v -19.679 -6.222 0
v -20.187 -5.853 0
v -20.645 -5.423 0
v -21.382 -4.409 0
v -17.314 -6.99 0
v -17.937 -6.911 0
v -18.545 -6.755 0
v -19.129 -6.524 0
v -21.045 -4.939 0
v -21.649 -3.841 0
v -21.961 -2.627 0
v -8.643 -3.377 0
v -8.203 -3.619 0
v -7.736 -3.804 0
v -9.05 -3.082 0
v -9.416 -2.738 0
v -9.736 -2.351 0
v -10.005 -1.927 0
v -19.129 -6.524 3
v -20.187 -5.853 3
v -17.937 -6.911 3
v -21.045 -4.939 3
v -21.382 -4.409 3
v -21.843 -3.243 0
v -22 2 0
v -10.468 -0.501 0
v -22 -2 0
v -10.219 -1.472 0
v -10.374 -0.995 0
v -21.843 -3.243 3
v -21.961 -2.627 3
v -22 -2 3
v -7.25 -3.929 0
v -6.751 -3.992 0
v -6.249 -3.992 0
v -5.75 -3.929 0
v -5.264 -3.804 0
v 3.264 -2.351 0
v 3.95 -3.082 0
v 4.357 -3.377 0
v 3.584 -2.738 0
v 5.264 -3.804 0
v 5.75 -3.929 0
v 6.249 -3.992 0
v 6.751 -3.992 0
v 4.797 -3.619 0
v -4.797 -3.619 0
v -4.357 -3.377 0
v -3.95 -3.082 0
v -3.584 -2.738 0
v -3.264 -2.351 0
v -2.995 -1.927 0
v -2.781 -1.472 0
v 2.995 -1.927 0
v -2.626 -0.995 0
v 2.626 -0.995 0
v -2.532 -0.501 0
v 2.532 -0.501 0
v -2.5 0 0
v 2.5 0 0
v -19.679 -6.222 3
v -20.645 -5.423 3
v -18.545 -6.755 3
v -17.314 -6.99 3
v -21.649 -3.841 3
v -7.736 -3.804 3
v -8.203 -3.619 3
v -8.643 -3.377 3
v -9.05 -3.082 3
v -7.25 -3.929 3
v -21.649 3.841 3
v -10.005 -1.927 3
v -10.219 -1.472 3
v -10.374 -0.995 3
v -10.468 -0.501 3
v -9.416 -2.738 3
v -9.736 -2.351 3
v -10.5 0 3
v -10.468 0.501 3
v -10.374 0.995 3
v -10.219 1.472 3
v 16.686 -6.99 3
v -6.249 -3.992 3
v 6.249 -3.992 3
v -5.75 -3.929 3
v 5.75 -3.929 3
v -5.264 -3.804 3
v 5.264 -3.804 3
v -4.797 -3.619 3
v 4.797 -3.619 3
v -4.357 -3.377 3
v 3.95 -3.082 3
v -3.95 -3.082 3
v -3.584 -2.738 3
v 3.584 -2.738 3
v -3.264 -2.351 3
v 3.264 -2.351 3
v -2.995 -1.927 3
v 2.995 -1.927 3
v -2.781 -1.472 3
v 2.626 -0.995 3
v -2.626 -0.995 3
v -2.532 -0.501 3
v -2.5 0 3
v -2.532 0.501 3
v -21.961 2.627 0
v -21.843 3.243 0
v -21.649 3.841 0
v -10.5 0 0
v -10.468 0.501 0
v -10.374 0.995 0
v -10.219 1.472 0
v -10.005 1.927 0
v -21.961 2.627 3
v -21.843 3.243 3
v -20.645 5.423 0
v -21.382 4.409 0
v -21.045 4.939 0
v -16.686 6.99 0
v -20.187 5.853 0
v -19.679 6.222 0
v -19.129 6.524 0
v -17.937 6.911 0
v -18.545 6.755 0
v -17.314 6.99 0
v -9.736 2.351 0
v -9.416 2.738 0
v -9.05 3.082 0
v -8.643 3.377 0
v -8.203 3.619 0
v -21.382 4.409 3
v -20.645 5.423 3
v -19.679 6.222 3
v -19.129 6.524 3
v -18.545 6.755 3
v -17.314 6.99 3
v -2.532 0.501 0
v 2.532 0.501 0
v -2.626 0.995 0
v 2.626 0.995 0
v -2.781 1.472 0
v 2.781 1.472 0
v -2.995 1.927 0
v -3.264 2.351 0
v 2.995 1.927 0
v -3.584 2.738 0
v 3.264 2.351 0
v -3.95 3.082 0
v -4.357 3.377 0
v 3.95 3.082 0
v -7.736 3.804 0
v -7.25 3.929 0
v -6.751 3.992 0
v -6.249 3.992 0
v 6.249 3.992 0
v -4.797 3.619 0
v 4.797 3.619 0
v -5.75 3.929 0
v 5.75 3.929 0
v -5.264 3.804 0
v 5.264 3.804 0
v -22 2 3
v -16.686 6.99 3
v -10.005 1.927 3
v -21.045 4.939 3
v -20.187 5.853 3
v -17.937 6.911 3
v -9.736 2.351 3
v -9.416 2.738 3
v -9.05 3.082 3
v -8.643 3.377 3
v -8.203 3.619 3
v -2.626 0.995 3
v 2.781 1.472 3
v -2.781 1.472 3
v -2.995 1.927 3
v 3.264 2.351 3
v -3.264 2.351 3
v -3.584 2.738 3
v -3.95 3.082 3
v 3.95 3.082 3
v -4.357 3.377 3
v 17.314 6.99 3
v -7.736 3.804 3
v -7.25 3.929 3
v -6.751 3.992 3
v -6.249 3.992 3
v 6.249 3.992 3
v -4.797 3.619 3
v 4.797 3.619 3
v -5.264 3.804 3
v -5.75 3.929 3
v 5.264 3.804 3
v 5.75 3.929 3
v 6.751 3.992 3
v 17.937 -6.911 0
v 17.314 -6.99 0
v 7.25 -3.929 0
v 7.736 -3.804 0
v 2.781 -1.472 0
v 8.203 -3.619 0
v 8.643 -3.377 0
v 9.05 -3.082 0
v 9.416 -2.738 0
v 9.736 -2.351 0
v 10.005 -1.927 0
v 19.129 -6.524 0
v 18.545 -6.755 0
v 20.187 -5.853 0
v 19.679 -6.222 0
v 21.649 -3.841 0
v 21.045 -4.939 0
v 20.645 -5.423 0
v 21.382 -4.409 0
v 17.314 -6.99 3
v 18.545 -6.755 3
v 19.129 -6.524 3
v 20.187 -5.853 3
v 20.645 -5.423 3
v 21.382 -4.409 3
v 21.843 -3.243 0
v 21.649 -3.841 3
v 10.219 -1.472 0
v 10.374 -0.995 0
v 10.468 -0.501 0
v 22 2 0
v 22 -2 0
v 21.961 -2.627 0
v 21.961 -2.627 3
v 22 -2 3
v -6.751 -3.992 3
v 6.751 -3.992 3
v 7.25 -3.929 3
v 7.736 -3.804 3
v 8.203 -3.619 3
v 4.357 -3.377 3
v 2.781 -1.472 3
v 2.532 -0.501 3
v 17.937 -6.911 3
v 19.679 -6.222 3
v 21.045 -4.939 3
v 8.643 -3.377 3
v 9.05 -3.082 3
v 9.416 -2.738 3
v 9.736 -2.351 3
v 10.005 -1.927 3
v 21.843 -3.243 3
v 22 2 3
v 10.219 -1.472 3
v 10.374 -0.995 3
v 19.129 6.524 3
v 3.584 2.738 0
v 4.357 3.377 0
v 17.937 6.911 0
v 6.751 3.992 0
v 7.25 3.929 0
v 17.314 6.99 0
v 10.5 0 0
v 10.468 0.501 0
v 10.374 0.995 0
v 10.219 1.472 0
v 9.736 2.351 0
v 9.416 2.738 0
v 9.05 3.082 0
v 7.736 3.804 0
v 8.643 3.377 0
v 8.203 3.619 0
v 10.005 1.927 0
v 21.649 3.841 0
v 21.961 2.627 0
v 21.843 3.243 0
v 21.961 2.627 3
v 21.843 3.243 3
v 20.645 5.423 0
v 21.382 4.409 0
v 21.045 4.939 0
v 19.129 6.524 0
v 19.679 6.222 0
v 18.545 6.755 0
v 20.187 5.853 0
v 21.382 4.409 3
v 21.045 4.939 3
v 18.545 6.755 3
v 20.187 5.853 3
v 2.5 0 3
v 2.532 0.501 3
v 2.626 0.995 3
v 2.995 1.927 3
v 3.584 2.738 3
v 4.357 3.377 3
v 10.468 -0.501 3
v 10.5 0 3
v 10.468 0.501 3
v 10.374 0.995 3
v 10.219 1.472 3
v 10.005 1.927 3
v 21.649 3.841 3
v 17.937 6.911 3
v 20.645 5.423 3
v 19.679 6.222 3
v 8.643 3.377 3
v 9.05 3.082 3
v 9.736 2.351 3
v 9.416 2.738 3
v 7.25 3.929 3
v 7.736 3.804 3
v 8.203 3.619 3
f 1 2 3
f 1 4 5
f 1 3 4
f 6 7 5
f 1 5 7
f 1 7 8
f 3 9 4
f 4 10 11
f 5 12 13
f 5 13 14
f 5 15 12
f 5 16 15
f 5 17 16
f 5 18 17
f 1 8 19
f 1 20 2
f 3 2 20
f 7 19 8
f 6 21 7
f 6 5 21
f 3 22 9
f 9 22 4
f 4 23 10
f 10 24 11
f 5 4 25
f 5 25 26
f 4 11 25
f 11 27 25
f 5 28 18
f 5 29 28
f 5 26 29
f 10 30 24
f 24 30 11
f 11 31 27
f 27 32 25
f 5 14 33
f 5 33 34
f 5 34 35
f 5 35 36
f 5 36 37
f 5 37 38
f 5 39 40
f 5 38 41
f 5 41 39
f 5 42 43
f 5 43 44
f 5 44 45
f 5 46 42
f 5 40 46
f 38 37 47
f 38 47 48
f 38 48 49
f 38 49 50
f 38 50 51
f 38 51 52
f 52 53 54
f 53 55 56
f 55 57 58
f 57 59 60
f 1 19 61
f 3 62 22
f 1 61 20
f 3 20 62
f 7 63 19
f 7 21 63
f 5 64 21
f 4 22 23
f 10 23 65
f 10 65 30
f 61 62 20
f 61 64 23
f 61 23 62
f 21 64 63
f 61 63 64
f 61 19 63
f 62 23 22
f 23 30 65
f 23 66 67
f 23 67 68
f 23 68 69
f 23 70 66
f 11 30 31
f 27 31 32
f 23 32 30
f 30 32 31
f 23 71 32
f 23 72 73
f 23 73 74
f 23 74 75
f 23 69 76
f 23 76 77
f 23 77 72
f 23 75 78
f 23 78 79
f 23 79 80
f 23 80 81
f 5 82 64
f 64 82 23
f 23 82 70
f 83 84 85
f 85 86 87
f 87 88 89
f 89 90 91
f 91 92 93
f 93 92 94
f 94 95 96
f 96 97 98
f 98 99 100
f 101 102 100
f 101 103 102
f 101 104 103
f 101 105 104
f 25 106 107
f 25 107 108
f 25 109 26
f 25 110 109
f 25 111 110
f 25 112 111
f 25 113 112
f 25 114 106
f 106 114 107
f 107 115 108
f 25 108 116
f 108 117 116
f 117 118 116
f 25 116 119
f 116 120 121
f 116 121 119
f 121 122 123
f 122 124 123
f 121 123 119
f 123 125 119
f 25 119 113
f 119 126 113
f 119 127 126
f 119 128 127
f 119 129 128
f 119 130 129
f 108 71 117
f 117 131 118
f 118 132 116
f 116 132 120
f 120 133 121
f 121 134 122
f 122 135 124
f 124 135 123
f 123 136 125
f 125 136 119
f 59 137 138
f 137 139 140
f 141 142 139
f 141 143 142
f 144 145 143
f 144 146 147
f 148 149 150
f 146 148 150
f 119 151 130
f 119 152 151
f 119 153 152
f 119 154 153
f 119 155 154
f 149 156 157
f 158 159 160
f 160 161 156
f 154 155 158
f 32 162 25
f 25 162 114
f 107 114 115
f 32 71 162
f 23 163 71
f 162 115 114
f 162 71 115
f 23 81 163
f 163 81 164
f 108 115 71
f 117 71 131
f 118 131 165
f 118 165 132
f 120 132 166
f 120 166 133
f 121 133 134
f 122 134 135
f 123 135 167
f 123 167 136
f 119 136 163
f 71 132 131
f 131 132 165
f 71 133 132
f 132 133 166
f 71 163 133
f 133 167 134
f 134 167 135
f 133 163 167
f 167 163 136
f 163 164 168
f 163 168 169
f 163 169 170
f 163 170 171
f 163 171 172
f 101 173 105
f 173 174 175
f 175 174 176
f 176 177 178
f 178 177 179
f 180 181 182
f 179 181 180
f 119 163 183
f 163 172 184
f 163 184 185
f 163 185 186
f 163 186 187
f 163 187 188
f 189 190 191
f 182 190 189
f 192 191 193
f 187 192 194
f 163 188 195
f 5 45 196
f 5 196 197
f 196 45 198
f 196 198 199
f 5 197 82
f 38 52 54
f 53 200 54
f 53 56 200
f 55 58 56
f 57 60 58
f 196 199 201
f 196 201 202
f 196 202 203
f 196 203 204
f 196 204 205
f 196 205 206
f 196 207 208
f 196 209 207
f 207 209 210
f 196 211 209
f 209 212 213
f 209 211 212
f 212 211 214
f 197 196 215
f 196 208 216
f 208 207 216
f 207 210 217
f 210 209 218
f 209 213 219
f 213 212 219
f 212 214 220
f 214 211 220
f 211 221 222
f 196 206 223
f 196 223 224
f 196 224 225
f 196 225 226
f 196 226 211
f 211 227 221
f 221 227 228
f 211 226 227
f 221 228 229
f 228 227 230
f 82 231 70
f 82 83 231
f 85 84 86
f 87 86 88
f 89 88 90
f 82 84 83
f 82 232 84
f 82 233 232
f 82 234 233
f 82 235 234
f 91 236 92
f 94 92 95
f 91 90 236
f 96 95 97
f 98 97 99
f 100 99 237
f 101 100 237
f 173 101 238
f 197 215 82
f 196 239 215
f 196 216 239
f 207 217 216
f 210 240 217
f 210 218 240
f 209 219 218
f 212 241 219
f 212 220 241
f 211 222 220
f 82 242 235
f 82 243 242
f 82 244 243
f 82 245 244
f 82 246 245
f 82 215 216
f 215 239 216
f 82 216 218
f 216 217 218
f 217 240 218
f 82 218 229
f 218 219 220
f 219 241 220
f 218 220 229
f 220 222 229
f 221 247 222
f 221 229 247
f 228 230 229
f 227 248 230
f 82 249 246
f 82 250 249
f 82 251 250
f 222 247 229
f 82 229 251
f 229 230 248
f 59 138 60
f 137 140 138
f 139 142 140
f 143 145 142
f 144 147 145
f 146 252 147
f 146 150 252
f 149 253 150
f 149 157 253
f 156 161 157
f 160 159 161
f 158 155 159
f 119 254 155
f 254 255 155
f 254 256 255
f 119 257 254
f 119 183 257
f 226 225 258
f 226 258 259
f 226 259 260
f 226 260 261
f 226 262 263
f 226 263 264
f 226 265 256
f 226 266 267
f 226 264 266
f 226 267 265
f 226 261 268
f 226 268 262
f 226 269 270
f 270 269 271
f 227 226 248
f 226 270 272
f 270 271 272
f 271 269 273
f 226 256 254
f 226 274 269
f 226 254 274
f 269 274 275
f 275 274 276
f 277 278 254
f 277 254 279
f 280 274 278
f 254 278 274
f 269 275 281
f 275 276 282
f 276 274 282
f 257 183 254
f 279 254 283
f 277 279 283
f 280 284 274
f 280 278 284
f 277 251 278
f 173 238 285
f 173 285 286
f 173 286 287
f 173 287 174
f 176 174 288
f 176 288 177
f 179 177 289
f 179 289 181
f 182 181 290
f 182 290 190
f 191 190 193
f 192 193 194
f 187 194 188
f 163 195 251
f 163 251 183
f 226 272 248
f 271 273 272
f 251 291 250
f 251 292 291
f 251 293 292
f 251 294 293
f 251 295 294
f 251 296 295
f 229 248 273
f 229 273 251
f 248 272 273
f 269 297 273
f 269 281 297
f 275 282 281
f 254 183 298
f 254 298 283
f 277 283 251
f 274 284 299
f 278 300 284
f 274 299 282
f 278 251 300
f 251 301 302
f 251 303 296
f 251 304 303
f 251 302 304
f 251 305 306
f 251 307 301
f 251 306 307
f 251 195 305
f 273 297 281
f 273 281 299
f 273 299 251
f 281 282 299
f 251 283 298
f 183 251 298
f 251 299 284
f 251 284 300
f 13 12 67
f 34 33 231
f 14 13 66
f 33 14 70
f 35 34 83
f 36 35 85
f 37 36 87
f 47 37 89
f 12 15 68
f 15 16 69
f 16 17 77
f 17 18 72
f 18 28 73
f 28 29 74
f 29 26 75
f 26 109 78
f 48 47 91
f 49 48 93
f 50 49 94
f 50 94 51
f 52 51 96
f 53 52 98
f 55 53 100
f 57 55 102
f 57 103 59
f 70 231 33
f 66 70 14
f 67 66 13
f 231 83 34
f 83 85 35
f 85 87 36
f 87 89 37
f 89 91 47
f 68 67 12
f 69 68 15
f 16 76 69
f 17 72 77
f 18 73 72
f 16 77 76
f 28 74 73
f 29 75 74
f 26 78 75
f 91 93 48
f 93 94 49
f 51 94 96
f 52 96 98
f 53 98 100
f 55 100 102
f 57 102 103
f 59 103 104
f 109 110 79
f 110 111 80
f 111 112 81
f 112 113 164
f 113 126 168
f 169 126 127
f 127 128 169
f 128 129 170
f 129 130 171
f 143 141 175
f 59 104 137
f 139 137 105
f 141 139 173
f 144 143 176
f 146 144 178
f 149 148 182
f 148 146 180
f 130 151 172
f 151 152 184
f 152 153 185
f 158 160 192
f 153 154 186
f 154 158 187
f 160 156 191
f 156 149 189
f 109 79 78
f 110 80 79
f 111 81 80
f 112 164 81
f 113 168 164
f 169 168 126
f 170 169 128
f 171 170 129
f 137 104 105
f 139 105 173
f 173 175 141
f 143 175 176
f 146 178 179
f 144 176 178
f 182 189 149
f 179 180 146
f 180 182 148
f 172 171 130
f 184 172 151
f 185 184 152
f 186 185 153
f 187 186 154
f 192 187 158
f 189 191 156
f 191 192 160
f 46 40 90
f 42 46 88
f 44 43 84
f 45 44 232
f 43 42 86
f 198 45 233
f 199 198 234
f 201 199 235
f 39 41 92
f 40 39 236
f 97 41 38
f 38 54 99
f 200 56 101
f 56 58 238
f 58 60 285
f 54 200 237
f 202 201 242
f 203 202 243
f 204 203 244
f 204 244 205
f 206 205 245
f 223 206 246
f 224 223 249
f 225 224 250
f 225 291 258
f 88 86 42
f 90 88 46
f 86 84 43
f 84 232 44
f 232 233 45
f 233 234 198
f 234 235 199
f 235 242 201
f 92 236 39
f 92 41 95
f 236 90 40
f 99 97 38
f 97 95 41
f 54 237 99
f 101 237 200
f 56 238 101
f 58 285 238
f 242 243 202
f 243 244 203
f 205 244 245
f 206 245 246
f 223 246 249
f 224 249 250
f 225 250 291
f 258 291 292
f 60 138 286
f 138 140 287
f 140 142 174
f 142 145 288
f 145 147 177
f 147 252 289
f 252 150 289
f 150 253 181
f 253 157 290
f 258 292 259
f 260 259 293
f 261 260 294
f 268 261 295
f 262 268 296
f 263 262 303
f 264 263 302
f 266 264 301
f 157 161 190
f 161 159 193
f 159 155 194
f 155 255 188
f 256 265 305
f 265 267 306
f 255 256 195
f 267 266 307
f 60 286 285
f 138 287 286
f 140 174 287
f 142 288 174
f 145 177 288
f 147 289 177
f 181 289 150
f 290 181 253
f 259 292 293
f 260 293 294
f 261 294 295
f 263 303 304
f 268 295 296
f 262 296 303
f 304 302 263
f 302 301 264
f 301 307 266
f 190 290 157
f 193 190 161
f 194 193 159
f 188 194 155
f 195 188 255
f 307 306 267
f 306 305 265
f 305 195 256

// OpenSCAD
$fn = 50;

difference() {
	union() {
		hull() {
			translate(v = [-17.0, 2.0, 0]) {
				cylinder(h = 3, r = 5);
			}
			translate(v = [17.0, 2.0, 0]) {
				cylinder(h = 3, r = 5);
			}
			translate(v = [-17.0, -2.0, 0]) {
				cylinder(h = 3, r = 5);
			}
			translate(v = [17.0, -2.0, 0]) {
				cylinder(h = 3, r = 5);
			}
		}
	}
	union() {
		translate(v = [-6.5, 0, 0.0]) {
			cylinder(h = 3, r = 4.0);
		}
		translate(v = [6.5, 0, 0.0]) {
			cylinder(h = 3, r = 4.0);
		}
	}
}
